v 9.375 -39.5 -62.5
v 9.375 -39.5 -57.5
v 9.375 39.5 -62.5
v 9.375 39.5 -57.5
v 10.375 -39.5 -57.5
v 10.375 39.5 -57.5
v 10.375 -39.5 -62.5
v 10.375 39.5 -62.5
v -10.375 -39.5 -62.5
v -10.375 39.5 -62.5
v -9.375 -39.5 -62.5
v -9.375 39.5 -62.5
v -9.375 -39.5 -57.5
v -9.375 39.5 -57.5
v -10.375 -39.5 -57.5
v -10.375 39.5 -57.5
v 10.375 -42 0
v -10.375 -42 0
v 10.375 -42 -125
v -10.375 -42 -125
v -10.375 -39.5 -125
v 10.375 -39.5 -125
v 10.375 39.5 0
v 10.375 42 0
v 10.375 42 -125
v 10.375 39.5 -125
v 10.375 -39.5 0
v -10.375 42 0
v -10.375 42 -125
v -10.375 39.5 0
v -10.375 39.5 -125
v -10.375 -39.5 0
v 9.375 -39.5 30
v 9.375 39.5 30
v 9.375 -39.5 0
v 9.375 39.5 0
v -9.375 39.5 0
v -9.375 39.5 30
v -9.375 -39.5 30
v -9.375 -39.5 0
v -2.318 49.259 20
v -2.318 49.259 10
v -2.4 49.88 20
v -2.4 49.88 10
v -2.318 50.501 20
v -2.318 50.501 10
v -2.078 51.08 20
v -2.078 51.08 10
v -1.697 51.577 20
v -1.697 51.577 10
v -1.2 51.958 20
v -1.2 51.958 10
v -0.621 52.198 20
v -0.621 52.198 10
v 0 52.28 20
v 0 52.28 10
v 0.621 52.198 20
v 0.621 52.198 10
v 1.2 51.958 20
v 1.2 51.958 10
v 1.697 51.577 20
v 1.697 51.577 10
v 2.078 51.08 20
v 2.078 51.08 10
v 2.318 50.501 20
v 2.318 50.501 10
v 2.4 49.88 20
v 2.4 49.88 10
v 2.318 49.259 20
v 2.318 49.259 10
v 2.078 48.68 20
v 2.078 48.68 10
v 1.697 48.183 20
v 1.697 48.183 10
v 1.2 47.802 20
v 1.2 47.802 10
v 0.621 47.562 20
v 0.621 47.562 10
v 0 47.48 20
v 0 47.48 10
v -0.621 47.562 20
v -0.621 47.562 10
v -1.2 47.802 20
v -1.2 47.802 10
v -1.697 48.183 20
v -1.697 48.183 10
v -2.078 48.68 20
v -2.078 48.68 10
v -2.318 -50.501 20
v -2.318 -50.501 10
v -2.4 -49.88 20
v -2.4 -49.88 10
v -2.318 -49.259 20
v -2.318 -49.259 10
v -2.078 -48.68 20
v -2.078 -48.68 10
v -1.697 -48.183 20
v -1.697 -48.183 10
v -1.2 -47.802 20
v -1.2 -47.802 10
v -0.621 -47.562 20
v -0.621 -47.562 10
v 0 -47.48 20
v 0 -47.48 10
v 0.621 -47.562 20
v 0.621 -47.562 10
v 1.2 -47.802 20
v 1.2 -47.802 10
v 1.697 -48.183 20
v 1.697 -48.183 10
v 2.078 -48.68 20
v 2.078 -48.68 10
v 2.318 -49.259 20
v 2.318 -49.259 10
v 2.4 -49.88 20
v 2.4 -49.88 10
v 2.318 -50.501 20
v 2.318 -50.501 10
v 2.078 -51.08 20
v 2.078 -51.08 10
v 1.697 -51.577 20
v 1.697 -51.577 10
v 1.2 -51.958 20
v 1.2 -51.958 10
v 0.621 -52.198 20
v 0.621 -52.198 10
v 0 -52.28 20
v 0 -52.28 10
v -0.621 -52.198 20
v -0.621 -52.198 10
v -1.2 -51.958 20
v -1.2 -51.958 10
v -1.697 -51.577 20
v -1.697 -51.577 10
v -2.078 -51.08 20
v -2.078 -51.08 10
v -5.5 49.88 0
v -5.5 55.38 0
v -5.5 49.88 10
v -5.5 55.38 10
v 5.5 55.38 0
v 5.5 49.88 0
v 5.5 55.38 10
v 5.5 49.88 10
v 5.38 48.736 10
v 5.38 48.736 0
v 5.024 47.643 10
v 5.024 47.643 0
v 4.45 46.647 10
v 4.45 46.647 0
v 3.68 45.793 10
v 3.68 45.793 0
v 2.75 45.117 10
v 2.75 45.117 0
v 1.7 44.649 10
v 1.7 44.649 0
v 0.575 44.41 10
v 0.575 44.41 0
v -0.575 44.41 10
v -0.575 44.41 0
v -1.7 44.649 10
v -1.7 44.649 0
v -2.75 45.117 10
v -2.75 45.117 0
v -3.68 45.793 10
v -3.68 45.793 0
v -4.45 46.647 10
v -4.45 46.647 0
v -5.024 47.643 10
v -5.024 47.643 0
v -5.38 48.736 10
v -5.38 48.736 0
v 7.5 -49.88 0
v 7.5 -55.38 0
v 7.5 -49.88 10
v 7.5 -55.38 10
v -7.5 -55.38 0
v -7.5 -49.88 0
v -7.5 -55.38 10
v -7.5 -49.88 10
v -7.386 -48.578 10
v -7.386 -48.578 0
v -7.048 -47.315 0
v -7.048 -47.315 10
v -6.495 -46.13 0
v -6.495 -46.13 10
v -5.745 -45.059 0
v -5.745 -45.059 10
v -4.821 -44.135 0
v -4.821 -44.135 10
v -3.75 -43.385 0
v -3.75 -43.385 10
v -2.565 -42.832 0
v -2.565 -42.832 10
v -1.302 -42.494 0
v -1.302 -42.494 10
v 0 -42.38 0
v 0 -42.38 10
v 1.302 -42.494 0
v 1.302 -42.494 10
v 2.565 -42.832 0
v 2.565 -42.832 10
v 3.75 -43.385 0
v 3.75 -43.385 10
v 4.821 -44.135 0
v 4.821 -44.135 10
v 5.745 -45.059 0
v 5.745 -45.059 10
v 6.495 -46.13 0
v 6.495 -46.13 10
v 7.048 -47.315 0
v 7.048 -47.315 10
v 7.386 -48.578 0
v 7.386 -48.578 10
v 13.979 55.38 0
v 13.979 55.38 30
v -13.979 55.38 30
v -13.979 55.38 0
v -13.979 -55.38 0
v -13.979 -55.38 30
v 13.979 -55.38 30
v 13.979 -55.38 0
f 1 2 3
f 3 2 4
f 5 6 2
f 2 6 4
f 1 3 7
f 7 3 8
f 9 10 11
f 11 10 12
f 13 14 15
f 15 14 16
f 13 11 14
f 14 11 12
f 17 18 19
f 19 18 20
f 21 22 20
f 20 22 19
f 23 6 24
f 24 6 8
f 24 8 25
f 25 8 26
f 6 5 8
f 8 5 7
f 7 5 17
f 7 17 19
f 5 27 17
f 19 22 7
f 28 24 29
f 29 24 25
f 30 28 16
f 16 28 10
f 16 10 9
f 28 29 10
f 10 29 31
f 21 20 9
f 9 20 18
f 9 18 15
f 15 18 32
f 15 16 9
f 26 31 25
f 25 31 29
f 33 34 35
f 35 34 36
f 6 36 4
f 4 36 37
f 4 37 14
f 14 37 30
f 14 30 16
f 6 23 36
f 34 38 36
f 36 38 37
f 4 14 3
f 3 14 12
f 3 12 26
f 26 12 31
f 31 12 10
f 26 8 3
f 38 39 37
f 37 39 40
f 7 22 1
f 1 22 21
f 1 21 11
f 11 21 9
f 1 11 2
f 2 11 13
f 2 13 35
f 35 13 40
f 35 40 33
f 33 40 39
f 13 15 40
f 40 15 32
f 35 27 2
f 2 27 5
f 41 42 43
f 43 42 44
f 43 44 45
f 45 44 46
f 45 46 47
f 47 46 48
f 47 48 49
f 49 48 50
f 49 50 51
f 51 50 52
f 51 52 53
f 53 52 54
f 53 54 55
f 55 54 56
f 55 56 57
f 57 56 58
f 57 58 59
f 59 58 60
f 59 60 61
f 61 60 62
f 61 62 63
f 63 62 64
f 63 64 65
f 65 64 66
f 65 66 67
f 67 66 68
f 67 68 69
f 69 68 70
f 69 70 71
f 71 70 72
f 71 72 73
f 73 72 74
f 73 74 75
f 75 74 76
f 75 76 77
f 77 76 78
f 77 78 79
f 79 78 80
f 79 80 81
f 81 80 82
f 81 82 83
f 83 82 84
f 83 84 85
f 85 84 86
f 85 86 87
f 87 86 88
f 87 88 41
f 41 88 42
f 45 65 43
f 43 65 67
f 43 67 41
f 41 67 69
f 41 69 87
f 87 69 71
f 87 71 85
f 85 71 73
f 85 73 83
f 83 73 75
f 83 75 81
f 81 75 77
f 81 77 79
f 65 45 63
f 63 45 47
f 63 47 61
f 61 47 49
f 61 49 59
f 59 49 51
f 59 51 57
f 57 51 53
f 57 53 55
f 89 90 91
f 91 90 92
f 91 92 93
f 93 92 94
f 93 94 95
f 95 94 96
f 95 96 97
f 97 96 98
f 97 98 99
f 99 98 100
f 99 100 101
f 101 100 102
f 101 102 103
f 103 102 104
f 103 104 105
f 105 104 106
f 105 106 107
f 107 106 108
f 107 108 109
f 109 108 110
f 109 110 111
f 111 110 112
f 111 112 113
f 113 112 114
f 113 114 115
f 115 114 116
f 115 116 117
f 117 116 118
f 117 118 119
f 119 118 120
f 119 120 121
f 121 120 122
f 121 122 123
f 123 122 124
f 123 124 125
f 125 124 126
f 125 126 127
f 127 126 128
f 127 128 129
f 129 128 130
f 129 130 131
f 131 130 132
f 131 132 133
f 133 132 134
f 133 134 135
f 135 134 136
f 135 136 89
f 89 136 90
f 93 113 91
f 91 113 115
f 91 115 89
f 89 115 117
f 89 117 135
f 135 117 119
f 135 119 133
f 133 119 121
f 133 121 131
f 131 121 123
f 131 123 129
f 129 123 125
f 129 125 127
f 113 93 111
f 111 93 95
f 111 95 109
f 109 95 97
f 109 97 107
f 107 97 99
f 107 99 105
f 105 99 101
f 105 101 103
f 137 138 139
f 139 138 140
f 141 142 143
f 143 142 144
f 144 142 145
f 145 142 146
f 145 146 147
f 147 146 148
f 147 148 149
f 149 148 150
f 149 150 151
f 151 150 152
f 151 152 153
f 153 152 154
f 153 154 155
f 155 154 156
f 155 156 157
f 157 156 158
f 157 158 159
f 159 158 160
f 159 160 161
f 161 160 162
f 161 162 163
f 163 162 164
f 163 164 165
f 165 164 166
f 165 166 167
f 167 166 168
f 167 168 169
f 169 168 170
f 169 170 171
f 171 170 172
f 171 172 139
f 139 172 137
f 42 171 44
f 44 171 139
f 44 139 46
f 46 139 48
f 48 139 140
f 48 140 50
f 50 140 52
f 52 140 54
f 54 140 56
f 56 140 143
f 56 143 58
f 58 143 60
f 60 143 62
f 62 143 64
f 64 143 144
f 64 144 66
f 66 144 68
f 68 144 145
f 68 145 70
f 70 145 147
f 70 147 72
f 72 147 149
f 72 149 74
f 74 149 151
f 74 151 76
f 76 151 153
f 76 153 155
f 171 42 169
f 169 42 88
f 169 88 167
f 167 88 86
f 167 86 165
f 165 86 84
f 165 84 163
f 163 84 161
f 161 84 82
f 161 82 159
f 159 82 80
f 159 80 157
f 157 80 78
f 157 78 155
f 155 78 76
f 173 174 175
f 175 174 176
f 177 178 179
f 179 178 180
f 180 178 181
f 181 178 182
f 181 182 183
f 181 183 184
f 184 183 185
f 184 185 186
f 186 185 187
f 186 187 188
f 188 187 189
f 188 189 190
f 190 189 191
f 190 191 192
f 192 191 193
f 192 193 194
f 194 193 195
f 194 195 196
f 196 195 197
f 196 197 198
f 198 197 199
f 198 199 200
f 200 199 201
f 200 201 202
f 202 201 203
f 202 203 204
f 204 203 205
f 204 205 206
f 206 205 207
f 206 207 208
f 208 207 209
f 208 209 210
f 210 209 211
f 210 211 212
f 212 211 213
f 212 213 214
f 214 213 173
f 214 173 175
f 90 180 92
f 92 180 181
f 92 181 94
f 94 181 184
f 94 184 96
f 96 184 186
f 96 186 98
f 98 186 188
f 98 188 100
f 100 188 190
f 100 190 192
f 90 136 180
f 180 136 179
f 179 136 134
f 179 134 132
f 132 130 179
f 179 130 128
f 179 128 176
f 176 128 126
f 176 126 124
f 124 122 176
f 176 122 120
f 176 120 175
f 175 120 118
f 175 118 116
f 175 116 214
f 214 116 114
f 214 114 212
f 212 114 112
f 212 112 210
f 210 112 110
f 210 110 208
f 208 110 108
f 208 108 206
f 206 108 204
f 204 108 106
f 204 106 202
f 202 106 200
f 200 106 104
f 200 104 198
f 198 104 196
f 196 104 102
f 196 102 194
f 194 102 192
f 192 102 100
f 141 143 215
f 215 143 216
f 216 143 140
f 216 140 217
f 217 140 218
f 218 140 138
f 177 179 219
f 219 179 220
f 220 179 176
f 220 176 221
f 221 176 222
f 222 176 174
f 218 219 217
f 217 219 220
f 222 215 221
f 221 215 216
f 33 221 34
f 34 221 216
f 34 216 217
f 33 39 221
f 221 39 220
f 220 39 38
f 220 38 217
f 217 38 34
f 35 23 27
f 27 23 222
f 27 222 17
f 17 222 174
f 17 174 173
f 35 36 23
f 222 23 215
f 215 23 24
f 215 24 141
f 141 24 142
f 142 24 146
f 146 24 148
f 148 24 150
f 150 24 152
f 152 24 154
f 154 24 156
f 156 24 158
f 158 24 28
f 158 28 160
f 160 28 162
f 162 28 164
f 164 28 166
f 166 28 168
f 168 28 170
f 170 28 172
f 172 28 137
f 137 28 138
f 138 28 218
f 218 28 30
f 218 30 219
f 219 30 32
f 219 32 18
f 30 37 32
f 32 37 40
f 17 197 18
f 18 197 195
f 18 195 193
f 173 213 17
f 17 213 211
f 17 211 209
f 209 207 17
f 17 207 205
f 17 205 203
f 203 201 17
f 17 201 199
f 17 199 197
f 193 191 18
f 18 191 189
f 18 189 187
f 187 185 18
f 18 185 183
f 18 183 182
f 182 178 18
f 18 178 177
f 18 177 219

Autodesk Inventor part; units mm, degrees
ref_plane "YZ Plane" through (0, 0, 0) normal (1, 0, 0) x (0, 1, 0)
ref_plane "XZ Plane" through (0, 0, 0) normal (0, 1, 0) x (-1, 0, 0)
ref_plane "XY Plane" through (0, 0, 0) normal (0, 0, 1) x (1, 0, 0)
sketch "Sketch1" plane through (0, 0, 0) normal (0, 0, 1) x (1, 0, 0)
  line L0 (-13.979, -55.38) -> (13.979, -55.38)
  line L1 (13.979, -55.38) -> (13.979, 55.38)
  line L2 (13.979, 55.38) -> (-13.979, 55.38)
  line L3 (-13.979, 55.38) -> (-13.979, -55.38)
  line L4 (-13.979, -55.38) -> (13.979, 55.38) construction
  line L5 (13.979, -55.38) -> (-13.979, 55.38) construction
  point P0 (0, 0)
  dimension "d0" = 27.958
  dimension "d1" = 110.76
extrude "Extrusion1" add sketch "Sketch1" along normal blind 30
sketch "Sketch2" plane through (0, 0, 0) normal (0, 0, -1) x (-1, 0, 0)
  line L0 (13.979, -55.38) -> (-13.979, -55.38) construction
  line L1 (0, -55.38) -> (0, -49.88) construction
  arc A0 (7.5, -49.88) -> (-7.5, -49.88) centre (0, -49.88) ccw
  line L2 (-7.5, -49.88) -> (-7.5, -55.38)
  line L3 (7.5, -49.88) -> (7.5, -55.38)
  line L4 (-13.979, 55.38) -> (13.979, 55.38) construction
  line L5 (0, 55.38) -> (0, 49.88) construction
  arc A1 (-5.5, 49.88) -> (5.5, 49.88) centre (0, 49.88) ccw
  line L6 (-5.5, 49.88) -> (-5.5, 55.38)
  line L7 (5.5, 49.88) -> (5.5, 55.38)
  line L8 (-5.5, 55.38) -> (5.5, 55.38)
  line L9 (-7.5, -55.38) -> (7.5, -55.38)
  point P0 (0, 0)
  dimension "d4" = 5.5
  dimension "d5" = 15
  dimension "d6" = 5.5
extrude "Extrusion2" cut sketch "Sketch2" against normal blind 10
sketch "Sketch3" plane through (0, 0, 10) normal (0, 0, -1) x (-1, 0, 0)
  arc A0 (-5.5, 49.88) -> (5.5, 49.88) centre (0, 49.88) ccw projected
  circle A1 centre (0, 49.88) radius 2.4
  arc A2 (7.5, -49.88) -> (-7.5, -49.88) centre (0, -49.88) ccw projected
  circle A3 centre (0, -49.88) radius 2.4
  point P0 (0, 0)
  dimension "d9" = 4.8
  dimension "d10" = 4.8
extrude "Extrusion3" cut sketch "Sketch3" against normal blind 10
sketch "Sketch4" plane through (0, 0, 30) normal (0, 0, 1) x (1, 0, 0)
  line L0 (-9.375, -39.5) -> (9.375, -39.5)
  line L1 (9.375, -39.5) -> (9.375, 39.5)
  line L2 (9.375, 39.5) -> (-9.375, 39.5)
  line L3 (-9.375, 39.5) -> (-9.375, -39.5)
  line L4 (-9.375, -39.5) -> (9.375, 39.5) construction
  line L5 (9.375, -39.5) -> (-9.375, 39.5) construction
  point P0 (0, 0)
  dimension "d13" = 18.75
  dimension "d14" = 79
extrude "Extrusion4" cut sketch "Sketch4" against normal blind 30
sketch "Sketch5" plane through (0, 0, 0) normal (0, 0, -1) x (-1, 0, 0)
  line L0 (9.375, -39.5) -> (-9.375, -39.5) construction
  line L1 (-9.375, -39.5) -> (-10.375, -39.5) construction
  line L2 (9.375, -39.5) -> (10.375, -39.5) construction
  line L3 (-10.375, -39.5) -> (10.375, -39.5)
  line L4 (10.375, -39.5) -> (10.375, -42)
  line L5 (10.375, -42) -> (-10.375, -42)
  line L6 (-10.375, -42) -> (-10.375, -39.5)
  line L7 (-9.375, -39.5) -> (-9.375, 39.5) construction
  line L8 (-9.375, 39.5) -> (-10.375, 39.5) construction
  line L9 (-9.375, 39.5) -> (9.375, 39.5) construction
  line L10 (9.375, 39.5) -> (10.375, 39.5) construction
  line L11 (-10.375, 39.5) -> (10.375, 39.5)
  line L12 (10.375, 39.5) -> (10.375, 42)
  line L13 (10.375, 42) -> (-10.375, 42)
  line L14 (-10.375, 42) -> (-10.375, 39.5)
  point P0 (0, 0)
  dimension "d17" = 1
  dimension "d18" = 1
  dimension "d19" = 2.5
  dimension "d20" = 1
  dimension "d21" = 1
  dimension "d22" = 2.5
extrude "Extrusion5" add sketch "Sketch5" along normal blind 125
sketch "Sketch6" plane through (-9.375, 39.5, 30) normal (0, -1, 0) x (1, 0, 0)
  line L0 (19.75, -30) -> (-1, -30) construction
  line L1 (19.75, -30) -> (19.75, -155) construction
  line L2 (19.75, -30) -> (19.75, -155) construction
  line L3 (19.75, -30) -> (19.75, -155) projected
  line L4 (19.75, -92.5) -> (18.75, -92.5)
  line L5 (18.75, -92.5) -> (18.75, -87.5)
  line L6 (18.75, -87.5) -> (19.75, -87.5)
  line L7 (19.75, -87.5) -> (19.75, -92.5)
  line L8 (-1, -30) -> (-1, -155) projected
  line L9 (-1, -92.5) -> (0, -92.5)
  line L10 (0, -92.5) -> (0, -87.5)
  line L11 (0, -87.5) -> (-1, -87.5)
  line L12 (-1, -87.5) -> (-1, -92.5)
  point P0 (9.375, -30)
  dimension "d25" = 1
  dimension "d26" = 5
  dimension "d27" = 1
  dimension "d28" = 5
extrude "Extrusion6" add sketch "Sketch6" along normal blind 80
properties part number "CyberDeckVerticalInsert4"
